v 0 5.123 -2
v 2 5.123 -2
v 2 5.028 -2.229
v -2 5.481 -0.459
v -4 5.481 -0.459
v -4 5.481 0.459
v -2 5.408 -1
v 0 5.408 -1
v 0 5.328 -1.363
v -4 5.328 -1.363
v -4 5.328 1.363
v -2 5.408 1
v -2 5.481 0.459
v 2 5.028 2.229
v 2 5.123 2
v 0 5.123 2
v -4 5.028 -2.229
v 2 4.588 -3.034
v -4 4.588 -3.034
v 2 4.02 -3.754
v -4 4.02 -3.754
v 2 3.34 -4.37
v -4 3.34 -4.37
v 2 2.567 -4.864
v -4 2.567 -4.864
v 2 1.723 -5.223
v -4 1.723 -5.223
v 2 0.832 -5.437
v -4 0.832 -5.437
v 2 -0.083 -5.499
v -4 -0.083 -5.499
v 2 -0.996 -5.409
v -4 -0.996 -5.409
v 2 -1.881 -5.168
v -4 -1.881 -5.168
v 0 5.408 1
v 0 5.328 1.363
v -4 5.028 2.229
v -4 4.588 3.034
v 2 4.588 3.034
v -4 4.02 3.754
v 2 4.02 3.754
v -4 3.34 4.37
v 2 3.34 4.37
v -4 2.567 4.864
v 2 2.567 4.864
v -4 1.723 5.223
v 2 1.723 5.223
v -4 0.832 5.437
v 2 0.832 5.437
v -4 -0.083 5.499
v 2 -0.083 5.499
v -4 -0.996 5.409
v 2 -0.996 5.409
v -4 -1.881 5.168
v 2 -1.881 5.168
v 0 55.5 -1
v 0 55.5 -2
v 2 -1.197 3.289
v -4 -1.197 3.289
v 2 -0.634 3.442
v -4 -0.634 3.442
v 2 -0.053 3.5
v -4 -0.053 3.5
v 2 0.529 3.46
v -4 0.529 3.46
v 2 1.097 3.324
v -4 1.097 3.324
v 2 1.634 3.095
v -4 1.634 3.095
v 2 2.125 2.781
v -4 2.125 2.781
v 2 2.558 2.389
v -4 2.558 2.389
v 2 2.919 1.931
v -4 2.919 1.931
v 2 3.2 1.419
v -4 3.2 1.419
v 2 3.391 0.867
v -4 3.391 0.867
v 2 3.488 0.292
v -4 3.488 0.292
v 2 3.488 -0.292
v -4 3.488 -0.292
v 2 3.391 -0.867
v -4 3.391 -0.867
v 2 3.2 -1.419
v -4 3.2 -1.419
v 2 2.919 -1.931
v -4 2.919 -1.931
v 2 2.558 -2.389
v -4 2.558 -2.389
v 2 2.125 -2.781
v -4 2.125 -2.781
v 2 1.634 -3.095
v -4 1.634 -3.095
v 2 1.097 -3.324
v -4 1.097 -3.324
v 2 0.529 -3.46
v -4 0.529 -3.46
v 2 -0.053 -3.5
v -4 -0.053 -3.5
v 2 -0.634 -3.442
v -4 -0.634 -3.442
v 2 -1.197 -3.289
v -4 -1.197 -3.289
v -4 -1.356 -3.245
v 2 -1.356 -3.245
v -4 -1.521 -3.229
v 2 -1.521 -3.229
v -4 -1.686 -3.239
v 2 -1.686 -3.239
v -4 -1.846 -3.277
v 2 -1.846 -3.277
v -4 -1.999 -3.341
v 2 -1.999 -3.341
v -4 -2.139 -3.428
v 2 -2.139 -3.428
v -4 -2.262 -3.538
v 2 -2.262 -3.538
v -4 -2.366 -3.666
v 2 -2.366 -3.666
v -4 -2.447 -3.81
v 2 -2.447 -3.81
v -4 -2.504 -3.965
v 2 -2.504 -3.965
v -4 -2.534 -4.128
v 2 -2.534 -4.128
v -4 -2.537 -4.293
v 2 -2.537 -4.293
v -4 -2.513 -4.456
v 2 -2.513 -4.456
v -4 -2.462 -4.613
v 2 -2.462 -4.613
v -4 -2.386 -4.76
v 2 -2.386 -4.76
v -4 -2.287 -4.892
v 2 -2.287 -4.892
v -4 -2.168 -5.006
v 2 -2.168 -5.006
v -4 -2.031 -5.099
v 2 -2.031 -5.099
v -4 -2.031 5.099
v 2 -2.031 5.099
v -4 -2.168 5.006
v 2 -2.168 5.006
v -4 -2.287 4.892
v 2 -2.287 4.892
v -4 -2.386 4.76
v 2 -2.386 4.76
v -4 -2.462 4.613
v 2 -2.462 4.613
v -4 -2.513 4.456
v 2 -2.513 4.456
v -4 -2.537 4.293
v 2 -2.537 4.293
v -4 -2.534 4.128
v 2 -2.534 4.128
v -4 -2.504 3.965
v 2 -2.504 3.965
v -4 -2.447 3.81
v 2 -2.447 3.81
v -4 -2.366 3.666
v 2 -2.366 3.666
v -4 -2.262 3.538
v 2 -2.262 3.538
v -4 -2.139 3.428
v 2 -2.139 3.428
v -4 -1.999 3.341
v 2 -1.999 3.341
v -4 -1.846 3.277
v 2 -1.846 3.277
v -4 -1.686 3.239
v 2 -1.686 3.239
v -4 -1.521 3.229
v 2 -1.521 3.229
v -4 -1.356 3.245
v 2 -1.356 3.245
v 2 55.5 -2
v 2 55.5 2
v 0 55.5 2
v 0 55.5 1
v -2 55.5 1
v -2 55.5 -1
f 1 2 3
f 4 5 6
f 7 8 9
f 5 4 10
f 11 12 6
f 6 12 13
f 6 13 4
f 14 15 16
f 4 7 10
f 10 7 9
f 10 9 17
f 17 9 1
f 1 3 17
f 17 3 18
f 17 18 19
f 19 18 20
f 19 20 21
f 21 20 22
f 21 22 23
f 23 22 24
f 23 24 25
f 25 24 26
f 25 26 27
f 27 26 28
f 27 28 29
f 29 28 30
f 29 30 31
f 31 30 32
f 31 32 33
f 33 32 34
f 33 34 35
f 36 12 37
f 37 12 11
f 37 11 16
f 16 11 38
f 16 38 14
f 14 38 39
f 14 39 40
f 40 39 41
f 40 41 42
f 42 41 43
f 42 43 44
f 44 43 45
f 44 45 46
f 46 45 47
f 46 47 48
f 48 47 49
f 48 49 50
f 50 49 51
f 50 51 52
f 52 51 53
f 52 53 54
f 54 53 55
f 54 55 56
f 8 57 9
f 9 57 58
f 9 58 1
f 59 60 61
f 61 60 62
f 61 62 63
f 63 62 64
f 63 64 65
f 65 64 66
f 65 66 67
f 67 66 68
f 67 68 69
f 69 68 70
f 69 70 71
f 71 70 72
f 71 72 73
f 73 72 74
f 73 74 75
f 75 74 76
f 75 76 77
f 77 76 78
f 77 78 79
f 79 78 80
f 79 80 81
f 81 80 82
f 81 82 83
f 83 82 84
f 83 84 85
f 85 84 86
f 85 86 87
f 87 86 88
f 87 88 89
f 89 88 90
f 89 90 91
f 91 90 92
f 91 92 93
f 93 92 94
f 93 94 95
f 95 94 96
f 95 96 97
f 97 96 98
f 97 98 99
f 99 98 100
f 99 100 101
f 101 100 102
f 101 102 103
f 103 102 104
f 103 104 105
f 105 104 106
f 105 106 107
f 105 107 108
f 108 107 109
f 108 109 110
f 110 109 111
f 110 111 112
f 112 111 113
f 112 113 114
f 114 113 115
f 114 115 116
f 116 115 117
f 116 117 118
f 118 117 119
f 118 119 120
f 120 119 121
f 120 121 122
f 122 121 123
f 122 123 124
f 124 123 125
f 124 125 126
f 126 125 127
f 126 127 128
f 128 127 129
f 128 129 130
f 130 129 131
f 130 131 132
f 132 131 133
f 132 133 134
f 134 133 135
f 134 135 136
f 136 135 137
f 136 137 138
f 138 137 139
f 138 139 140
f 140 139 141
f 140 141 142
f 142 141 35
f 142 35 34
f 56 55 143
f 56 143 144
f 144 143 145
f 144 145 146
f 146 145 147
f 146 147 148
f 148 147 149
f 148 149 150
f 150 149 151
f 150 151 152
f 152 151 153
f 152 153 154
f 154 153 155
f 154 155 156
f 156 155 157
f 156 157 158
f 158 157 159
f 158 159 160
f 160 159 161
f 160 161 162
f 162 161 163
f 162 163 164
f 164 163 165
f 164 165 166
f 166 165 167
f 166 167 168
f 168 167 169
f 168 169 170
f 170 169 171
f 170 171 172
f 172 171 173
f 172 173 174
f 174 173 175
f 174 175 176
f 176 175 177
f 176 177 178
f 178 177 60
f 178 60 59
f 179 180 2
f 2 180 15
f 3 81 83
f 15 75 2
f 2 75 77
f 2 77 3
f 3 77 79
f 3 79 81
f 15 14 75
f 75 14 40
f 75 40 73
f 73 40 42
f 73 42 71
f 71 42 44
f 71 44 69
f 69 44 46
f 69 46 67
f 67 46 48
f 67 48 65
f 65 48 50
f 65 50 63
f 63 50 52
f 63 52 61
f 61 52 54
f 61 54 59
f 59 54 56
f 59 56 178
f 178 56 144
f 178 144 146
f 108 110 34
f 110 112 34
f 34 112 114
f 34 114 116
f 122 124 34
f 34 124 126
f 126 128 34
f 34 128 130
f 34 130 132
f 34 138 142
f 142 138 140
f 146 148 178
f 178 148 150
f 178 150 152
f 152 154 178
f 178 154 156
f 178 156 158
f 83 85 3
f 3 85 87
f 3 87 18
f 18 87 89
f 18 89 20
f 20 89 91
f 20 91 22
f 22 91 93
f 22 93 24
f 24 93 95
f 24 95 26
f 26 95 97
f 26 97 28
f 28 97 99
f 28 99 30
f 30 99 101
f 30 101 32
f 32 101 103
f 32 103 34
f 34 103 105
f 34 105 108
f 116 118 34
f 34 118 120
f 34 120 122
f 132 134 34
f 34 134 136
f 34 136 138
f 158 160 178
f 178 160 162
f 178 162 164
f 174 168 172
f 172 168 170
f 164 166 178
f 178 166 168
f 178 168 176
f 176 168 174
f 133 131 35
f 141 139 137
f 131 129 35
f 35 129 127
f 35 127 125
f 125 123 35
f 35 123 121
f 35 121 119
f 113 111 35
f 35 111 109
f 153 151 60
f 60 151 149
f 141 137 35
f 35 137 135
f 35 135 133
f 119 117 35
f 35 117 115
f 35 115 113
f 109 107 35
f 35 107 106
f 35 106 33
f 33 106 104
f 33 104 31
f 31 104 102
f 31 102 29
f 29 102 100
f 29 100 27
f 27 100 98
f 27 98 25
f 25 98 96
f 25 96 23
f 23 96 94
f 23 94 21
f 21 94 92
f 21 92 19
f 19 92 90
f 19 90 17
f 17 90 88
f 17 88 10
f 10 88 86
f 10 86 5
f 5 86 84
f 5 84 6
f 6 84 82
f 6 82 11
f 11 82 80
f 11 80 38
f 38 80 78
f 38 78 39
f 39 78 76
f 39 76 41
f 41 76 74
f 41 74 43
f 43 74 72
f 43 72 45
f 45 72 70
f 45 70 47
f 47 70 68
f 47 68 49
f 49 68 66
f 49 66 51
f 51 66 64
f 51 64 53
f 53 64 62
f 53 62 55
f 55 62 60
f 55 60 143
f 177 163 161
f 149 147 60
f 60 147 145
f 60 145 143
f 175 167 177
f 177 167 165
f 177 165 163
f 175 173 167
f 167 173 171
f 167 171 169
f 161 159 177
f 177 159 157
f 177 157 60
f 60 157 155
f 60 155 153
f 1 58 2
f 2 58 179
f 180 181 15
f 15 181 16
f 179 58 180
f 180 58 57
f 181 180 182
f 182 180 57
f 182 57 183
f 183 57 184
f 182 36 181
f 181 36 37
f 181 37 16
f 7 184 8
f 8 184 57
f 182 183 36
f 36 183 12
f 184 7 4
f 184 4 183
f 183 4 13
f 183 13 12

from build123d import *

# Parameters (mm, degrees)
BOSS_EXTRUDE1_DEPTH      = 2
BOSS_EXTRUDE1_DEPTH_BACK = 4
BOSS_EXTRUDE2_DEPTH      = 2
BOSS_EXTRUDE3_DEPTH      = 2


with BuildPart() as part:
    # Sketch1 → Boss-Extrude1 (new, two sides: drawn at the far end of the back side and taken through both)
    with BuildSketch(Plane(origin=(0, 0, 0), x_dir=(0, 0, -1), z_dir=(1, 0, 0)).offset(-BOSS_EXTRUDE1_DEPTH_BACK)):
        with BuildLine():
            Line((-5.5, 0), (-3.5, 0))
            ThreePointArc((-3.5, 0), (0, 3.5), (3.5, 0))
            ThreePointArc((3.5, 0), (3.446827136, -0.607768622), (3.288924173, -1.197070502))
            Line((3.288924173, -1.197070502), (5.168309414, -1.881110788))
            ThreePointArc((5.168309414, -1.881110788), (5.416442642, -0.955064977), (5.5, 0))
            ThreePointArc((5.5, 0), (0, 5.5), (-5.5, 0))
        make_face()
        with BuildLine():
            Line((5.168309414, -1.881110788), (3.288924173, -1.197070502))
            ThreePointArc((3.288924173, -1.197070502), (3.88659665, -2.478783266), (5.168309414, -1.881110788))
        make_face()
        with BuildLine():
            ThreePointArc((-3.288924173, -1.197070502), (-3.446827136, -0.607768622), (-3.5, 0))
            Line((-3.5, 0), (-5.5, 0))
            ThreePointArc((-5.5, 0), (-5.416442642, -0.955064977), (-5.168309414, -1.881110788))
            Line((-5.168309414, -1.881110788), (-4.228616794, -1.539090645))
            Line((-4.228616794, -1.539090645), (-3.288924173, -1.197070502))
        make_face()
        with BuildLine():
            ThreePointArc((-5.168309414, -1.881110788), (-3.88659665, -2.478783266), (-3.288924173, -1.197070502))
            Line((-3.288924173, -1.197070502), (-4.228616794, -1.539090645))
            Line((-4.228616794, -1.539090645), (-5.168309414, -1.881110788))
        make_face()
    extrude(amount=BOSS_EXTRUDE1_DEPTH + BOSS_EXTRUDE1_DEPTH_BACK)

    # Sketch2 → Boss-Extrude2 (add)
    with BuildSketch(Plane(origin=(0, 0, 0), x_dir=(0, 0, -1), z_dir=(1, 0, 0))):
        Polygon((-2, 3.5), (0, 3.5), (2, 3.5), (2, 55.5), (-2, 55.5), align=None)
    extrude(amount=BOSS_EXTRUDE2_DEPTH)

    # Sketch3 → Boss-Extrude3 (add)
    with BuildSketch(Plane(origin=(0, 0, 0), x_dir=(0, 0, -1), z_dir=(1, 0, 0))):
        Polygon((1, 55.5), (0, 55.5), (-1, 55.5), (-1, 3.5), (1, 3.5), align=None)
    extrude(amount=-BOSS_EXTRUDE3_DEPTH)


solid = part.part
